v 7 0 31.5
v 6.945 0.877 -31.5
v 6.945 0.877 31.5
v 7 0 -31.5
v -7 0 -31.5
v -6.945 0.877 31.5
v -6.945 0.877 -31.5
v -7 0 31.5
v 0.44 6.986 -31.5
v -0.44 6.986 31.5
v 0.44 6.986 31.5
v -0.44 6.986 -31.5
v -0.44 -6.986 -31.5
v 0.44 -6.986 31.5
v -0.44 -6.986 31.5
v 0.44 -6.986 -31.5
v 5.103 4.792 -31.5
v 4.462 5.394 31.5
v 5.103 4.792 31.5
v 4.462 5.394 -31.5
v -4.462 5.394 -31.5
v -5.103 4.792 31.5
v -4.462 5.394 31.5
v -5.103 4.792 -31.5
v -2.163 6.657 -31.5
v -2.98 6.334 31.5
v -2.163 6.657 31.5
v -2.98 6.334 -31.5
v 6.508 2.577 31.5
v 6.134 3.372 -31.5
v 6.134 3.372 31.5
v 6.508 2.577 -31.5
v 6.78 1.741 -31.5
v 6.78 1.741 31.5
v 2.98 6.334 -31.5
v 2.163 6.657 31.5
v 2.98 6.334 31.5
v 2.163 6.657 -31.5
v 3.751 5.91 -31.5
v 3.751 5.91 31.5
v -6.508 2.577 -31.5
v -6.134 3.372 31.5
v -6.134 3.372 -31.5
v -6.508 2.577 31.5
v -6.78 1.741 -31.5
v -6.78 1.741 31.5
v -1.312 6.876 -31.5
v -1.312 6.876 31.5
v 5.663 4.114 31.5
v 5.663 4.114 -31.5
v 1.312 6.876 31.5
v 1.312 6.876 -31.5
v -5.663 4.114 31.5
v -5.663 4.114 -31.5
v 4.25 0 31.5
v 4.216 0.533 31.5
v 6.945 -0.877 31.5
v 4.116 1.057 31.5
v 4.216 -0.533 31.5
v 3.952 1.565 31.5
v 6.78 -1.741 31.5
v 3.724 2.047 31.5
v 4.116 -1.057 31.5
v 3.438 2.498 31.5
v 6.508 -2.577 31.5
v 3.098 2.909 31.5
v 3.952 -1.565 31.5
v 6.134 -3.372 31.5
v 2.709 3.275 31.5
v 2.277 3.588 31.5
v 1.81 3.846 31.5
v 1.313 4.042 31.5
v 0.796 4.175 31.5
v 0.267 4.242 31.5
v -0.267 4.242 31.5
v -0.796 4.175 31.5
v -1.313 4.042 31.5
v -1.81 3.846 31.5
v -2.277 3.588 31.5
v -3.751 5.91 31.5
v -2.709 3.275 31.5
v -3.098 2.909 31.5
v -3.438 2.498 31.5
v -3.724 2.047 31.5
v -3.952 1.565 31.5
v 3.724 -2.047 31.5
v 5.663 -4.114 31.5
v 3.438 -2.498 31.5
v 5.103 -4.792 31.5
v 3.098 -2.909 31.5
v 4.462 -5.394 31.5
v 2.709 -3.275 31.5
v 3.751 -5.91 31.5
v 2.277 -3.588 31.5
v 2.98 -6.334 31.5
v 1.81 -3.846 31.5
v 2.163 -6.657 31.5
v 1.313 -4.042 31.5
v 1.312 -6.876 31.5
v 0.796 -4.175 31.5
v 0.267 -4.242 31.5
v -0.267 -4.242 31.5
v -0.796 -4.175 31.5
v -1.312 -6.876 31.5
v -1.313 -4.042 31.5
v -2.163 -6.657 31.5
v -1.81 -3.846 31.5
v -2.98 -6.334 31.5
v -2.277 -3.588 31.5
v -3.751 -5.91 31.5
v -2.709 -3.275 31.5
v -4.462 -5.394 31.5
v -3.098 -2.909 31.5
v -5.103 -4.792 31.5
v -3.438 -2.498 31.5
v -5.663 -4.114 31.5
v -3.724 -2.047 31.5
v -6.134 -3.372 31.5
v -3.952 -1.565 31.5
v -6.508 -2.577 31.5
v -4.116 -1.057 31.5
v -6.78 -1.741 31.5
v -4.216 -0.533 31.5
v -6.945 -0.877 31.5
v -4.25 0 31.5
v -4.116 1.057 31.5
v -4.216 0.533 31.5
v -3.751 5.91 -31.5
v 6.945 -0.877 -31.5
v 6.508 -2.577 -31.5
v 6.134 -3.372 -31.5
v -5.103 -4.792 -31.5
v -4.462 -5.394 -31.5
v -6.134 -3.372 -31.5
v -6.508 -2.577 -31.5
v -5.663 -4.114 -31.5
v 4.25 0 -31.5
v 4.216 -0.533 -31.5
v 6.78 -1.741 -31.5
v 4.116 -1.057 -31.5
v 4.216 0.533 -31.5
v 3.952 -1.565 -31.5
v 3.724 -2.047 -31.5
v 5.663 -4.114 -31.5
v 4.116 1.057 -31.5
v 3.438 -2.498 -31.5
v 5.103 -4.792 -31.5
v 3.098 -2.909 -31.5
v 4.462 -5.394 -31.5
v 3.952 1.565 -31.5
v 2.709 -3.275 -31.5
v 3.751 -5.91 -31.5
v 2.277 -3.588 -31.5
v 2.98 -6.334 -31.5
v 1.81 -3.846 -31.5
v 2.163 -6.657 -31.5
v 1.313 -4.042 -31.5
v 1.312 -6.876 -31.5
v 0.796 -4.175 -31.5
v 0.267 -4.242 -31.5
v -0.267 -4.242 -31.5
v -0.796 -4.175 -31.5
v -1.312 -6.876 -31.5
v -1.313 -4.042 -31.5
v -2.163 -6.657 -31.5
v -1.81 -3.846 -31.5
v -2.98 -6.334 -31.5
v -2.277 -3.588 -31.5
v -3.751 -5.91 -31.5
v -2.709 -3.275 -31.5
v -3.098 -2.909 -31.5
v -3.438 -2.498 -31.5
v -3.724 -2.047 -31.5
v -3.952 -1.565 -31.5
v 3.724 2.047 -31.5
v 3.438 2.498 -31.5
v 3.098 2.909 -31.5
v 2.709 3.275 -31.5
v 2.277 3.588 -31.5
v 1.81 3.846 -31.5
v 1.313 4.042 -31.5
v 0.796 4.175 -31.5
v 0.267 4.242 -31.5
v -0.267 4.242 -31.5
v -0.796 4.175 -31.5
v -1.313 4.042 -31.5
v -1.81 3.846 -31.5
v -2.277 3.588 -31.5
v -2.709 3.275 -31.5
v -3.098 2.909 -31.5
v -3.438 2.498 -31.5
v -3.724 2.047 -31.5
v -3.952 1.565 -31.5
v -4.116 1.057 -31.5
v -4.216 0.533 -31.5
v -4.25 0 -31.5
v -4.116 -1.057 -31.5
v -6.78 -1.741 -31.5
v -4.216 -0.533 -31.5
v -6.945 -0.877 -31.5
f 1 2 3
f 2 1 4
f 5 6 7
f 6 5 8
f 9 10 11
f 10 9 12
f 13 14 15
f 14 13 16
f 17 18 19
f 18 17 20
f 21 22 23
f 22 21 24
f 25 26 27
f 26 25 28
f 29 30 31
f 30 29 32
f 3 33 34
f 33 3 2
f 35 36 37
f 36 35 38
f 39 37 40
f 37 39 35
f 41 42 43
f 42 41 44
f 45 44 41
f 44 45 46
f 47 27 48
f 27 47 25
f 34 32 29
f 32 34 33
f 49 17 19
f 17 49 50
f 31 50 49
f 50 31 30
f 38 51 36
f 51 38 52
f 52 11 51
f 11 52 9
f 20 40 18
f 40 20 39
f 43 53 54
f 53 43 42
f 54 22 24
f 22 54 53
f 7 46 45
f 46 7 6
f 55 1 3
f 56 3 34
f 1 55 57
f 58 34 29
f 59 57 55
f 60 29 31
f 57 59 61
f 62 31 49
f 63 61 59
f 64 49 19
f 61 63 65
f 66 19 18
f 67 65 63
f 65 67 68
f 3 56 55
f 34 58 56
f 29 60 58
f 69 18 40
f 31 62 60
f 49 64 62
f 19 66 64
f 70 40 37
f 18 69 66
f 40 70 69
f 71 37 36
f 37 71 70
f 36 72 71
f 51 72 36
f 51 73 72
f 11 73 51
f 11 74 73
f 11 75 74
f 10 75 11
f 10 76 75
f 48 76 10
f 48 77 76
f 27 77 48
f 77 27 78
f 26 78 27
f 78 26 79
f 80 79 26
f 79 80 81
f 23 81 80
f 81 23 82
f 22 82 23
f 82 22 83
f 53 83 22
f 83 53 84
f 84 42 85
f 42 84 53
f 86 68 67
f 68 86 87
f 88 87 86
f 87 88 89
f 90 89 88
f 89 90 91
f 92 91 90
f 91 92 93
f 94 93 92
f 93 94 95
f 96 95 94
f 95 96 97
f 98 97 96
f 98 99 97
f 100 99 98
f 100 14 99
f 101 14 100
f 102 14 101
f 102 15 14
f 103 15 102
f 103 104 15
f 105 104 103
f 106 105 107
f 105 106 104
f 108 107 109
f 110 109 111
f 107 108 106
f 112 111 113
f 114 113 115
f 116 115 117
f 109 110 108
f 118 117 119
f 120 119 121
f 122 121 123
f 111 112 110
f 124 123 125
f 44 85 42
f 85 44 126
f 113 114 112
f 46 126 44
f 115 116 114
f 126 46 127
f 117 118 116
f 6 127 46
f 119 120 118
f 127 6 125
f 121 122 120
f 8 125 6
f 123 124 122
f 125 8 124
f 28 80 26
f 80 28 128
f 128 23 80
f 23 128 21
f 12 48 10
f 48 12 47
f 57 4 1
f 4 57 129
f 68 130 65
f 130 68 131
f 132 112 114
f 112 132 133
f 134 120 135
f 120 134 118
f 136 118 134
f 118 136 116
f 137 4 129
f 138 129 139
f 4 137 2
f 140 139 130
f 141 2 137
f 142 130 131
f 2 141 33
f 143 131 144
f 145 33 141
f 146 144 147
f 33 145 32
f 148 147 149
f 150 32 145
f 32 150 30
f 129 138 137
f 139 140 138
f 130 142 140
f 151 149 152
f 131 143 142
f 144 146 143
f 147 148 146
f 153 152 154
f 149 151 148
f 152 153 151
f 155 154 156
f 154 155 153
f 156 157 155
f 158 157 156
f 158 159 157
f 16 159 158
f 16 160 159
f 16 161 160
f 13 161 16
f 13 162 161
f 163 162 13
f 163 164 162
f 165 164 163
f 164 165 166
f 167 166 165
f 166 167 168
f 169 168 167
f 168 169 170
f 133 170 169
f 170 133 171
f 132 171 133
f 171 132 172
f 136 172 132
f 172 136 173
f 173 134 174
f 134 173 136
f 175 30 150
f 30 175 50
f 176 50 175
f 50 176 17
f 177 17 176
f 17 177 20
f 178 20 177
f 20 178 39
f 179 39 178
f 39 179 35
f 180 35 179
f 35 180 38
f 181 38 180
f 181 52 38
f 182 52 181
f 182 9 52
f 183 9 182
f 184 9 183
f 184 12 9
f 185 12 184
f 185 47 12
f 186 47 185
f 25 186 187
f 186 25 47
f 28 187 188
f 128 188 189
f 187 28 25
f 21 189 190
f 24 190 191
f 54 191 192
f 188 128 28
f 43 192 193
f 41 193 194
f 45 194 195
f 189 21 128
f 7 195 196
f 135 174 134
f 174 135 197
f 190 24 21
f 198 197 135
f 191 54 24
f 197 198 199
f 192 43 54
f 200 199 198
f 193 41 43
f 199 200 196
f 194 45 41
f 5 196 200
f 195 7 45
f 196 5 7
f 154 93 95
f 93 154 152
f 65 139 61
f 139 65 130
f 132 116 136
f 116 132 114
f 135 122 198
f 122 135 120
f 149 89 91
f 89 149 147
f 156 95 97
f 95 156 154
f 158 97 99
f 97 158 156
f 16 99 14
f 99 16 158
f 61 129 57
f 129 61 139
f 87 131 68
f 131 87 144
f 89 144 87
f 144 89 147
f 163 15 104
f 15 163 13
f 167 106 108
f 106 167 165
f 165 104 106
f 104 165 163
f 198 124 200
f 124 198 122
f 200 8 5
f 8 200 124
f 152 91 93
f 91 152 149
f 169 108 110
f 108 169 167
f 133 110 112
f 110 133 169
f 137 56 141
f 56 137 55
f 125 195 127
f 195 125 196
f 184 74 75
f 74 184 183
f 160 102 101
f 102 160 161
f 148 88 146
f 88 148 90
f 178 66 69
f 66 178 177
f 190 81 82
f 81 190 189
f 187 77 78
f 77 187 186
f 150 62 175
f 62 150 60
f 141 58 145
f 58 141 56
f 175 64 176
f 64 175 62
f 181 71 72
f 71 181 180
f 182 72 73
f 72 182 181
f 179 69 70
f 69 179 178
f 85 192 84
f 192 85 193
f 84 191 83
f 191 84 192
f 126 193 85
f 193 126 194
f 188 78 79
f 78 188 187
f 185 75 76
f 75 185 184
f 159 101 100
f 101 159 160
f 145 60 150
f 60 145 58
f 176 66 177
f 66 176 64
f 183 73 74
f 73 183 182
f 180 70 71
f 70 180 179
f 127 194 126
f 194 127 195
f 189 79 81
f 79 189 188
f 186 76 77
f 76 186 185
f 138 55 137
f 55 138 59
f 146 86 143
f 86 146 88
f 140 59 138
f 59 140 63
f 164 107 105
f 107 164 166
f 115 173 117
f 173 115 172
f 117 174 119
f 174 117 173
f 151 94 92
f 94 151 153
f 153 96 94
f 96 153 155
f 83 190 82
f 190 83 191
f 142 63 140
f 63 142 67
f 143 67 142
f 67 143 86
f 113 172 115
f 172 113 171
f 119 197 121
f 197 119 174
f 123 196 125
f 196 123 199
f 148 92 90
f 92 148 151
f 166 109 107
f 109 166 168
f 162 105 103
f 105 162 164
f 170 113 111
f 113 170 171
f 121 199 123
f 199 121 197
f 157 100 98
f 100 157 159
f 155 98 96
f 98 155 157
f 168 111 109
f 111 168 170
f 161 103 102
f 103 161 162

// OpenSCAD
$fn = 50;


difference() {
	union() {
		translate(v = [0, 0, -31.5000000000]) {
			cylinder(h = 63, r = 7.0000000000);
		}
	}
	union() {
		translate(v = [0, 0, -100.0000000000]) {
			cylinder(h = 200, r = 4.2500000000);
		}
	}
}
